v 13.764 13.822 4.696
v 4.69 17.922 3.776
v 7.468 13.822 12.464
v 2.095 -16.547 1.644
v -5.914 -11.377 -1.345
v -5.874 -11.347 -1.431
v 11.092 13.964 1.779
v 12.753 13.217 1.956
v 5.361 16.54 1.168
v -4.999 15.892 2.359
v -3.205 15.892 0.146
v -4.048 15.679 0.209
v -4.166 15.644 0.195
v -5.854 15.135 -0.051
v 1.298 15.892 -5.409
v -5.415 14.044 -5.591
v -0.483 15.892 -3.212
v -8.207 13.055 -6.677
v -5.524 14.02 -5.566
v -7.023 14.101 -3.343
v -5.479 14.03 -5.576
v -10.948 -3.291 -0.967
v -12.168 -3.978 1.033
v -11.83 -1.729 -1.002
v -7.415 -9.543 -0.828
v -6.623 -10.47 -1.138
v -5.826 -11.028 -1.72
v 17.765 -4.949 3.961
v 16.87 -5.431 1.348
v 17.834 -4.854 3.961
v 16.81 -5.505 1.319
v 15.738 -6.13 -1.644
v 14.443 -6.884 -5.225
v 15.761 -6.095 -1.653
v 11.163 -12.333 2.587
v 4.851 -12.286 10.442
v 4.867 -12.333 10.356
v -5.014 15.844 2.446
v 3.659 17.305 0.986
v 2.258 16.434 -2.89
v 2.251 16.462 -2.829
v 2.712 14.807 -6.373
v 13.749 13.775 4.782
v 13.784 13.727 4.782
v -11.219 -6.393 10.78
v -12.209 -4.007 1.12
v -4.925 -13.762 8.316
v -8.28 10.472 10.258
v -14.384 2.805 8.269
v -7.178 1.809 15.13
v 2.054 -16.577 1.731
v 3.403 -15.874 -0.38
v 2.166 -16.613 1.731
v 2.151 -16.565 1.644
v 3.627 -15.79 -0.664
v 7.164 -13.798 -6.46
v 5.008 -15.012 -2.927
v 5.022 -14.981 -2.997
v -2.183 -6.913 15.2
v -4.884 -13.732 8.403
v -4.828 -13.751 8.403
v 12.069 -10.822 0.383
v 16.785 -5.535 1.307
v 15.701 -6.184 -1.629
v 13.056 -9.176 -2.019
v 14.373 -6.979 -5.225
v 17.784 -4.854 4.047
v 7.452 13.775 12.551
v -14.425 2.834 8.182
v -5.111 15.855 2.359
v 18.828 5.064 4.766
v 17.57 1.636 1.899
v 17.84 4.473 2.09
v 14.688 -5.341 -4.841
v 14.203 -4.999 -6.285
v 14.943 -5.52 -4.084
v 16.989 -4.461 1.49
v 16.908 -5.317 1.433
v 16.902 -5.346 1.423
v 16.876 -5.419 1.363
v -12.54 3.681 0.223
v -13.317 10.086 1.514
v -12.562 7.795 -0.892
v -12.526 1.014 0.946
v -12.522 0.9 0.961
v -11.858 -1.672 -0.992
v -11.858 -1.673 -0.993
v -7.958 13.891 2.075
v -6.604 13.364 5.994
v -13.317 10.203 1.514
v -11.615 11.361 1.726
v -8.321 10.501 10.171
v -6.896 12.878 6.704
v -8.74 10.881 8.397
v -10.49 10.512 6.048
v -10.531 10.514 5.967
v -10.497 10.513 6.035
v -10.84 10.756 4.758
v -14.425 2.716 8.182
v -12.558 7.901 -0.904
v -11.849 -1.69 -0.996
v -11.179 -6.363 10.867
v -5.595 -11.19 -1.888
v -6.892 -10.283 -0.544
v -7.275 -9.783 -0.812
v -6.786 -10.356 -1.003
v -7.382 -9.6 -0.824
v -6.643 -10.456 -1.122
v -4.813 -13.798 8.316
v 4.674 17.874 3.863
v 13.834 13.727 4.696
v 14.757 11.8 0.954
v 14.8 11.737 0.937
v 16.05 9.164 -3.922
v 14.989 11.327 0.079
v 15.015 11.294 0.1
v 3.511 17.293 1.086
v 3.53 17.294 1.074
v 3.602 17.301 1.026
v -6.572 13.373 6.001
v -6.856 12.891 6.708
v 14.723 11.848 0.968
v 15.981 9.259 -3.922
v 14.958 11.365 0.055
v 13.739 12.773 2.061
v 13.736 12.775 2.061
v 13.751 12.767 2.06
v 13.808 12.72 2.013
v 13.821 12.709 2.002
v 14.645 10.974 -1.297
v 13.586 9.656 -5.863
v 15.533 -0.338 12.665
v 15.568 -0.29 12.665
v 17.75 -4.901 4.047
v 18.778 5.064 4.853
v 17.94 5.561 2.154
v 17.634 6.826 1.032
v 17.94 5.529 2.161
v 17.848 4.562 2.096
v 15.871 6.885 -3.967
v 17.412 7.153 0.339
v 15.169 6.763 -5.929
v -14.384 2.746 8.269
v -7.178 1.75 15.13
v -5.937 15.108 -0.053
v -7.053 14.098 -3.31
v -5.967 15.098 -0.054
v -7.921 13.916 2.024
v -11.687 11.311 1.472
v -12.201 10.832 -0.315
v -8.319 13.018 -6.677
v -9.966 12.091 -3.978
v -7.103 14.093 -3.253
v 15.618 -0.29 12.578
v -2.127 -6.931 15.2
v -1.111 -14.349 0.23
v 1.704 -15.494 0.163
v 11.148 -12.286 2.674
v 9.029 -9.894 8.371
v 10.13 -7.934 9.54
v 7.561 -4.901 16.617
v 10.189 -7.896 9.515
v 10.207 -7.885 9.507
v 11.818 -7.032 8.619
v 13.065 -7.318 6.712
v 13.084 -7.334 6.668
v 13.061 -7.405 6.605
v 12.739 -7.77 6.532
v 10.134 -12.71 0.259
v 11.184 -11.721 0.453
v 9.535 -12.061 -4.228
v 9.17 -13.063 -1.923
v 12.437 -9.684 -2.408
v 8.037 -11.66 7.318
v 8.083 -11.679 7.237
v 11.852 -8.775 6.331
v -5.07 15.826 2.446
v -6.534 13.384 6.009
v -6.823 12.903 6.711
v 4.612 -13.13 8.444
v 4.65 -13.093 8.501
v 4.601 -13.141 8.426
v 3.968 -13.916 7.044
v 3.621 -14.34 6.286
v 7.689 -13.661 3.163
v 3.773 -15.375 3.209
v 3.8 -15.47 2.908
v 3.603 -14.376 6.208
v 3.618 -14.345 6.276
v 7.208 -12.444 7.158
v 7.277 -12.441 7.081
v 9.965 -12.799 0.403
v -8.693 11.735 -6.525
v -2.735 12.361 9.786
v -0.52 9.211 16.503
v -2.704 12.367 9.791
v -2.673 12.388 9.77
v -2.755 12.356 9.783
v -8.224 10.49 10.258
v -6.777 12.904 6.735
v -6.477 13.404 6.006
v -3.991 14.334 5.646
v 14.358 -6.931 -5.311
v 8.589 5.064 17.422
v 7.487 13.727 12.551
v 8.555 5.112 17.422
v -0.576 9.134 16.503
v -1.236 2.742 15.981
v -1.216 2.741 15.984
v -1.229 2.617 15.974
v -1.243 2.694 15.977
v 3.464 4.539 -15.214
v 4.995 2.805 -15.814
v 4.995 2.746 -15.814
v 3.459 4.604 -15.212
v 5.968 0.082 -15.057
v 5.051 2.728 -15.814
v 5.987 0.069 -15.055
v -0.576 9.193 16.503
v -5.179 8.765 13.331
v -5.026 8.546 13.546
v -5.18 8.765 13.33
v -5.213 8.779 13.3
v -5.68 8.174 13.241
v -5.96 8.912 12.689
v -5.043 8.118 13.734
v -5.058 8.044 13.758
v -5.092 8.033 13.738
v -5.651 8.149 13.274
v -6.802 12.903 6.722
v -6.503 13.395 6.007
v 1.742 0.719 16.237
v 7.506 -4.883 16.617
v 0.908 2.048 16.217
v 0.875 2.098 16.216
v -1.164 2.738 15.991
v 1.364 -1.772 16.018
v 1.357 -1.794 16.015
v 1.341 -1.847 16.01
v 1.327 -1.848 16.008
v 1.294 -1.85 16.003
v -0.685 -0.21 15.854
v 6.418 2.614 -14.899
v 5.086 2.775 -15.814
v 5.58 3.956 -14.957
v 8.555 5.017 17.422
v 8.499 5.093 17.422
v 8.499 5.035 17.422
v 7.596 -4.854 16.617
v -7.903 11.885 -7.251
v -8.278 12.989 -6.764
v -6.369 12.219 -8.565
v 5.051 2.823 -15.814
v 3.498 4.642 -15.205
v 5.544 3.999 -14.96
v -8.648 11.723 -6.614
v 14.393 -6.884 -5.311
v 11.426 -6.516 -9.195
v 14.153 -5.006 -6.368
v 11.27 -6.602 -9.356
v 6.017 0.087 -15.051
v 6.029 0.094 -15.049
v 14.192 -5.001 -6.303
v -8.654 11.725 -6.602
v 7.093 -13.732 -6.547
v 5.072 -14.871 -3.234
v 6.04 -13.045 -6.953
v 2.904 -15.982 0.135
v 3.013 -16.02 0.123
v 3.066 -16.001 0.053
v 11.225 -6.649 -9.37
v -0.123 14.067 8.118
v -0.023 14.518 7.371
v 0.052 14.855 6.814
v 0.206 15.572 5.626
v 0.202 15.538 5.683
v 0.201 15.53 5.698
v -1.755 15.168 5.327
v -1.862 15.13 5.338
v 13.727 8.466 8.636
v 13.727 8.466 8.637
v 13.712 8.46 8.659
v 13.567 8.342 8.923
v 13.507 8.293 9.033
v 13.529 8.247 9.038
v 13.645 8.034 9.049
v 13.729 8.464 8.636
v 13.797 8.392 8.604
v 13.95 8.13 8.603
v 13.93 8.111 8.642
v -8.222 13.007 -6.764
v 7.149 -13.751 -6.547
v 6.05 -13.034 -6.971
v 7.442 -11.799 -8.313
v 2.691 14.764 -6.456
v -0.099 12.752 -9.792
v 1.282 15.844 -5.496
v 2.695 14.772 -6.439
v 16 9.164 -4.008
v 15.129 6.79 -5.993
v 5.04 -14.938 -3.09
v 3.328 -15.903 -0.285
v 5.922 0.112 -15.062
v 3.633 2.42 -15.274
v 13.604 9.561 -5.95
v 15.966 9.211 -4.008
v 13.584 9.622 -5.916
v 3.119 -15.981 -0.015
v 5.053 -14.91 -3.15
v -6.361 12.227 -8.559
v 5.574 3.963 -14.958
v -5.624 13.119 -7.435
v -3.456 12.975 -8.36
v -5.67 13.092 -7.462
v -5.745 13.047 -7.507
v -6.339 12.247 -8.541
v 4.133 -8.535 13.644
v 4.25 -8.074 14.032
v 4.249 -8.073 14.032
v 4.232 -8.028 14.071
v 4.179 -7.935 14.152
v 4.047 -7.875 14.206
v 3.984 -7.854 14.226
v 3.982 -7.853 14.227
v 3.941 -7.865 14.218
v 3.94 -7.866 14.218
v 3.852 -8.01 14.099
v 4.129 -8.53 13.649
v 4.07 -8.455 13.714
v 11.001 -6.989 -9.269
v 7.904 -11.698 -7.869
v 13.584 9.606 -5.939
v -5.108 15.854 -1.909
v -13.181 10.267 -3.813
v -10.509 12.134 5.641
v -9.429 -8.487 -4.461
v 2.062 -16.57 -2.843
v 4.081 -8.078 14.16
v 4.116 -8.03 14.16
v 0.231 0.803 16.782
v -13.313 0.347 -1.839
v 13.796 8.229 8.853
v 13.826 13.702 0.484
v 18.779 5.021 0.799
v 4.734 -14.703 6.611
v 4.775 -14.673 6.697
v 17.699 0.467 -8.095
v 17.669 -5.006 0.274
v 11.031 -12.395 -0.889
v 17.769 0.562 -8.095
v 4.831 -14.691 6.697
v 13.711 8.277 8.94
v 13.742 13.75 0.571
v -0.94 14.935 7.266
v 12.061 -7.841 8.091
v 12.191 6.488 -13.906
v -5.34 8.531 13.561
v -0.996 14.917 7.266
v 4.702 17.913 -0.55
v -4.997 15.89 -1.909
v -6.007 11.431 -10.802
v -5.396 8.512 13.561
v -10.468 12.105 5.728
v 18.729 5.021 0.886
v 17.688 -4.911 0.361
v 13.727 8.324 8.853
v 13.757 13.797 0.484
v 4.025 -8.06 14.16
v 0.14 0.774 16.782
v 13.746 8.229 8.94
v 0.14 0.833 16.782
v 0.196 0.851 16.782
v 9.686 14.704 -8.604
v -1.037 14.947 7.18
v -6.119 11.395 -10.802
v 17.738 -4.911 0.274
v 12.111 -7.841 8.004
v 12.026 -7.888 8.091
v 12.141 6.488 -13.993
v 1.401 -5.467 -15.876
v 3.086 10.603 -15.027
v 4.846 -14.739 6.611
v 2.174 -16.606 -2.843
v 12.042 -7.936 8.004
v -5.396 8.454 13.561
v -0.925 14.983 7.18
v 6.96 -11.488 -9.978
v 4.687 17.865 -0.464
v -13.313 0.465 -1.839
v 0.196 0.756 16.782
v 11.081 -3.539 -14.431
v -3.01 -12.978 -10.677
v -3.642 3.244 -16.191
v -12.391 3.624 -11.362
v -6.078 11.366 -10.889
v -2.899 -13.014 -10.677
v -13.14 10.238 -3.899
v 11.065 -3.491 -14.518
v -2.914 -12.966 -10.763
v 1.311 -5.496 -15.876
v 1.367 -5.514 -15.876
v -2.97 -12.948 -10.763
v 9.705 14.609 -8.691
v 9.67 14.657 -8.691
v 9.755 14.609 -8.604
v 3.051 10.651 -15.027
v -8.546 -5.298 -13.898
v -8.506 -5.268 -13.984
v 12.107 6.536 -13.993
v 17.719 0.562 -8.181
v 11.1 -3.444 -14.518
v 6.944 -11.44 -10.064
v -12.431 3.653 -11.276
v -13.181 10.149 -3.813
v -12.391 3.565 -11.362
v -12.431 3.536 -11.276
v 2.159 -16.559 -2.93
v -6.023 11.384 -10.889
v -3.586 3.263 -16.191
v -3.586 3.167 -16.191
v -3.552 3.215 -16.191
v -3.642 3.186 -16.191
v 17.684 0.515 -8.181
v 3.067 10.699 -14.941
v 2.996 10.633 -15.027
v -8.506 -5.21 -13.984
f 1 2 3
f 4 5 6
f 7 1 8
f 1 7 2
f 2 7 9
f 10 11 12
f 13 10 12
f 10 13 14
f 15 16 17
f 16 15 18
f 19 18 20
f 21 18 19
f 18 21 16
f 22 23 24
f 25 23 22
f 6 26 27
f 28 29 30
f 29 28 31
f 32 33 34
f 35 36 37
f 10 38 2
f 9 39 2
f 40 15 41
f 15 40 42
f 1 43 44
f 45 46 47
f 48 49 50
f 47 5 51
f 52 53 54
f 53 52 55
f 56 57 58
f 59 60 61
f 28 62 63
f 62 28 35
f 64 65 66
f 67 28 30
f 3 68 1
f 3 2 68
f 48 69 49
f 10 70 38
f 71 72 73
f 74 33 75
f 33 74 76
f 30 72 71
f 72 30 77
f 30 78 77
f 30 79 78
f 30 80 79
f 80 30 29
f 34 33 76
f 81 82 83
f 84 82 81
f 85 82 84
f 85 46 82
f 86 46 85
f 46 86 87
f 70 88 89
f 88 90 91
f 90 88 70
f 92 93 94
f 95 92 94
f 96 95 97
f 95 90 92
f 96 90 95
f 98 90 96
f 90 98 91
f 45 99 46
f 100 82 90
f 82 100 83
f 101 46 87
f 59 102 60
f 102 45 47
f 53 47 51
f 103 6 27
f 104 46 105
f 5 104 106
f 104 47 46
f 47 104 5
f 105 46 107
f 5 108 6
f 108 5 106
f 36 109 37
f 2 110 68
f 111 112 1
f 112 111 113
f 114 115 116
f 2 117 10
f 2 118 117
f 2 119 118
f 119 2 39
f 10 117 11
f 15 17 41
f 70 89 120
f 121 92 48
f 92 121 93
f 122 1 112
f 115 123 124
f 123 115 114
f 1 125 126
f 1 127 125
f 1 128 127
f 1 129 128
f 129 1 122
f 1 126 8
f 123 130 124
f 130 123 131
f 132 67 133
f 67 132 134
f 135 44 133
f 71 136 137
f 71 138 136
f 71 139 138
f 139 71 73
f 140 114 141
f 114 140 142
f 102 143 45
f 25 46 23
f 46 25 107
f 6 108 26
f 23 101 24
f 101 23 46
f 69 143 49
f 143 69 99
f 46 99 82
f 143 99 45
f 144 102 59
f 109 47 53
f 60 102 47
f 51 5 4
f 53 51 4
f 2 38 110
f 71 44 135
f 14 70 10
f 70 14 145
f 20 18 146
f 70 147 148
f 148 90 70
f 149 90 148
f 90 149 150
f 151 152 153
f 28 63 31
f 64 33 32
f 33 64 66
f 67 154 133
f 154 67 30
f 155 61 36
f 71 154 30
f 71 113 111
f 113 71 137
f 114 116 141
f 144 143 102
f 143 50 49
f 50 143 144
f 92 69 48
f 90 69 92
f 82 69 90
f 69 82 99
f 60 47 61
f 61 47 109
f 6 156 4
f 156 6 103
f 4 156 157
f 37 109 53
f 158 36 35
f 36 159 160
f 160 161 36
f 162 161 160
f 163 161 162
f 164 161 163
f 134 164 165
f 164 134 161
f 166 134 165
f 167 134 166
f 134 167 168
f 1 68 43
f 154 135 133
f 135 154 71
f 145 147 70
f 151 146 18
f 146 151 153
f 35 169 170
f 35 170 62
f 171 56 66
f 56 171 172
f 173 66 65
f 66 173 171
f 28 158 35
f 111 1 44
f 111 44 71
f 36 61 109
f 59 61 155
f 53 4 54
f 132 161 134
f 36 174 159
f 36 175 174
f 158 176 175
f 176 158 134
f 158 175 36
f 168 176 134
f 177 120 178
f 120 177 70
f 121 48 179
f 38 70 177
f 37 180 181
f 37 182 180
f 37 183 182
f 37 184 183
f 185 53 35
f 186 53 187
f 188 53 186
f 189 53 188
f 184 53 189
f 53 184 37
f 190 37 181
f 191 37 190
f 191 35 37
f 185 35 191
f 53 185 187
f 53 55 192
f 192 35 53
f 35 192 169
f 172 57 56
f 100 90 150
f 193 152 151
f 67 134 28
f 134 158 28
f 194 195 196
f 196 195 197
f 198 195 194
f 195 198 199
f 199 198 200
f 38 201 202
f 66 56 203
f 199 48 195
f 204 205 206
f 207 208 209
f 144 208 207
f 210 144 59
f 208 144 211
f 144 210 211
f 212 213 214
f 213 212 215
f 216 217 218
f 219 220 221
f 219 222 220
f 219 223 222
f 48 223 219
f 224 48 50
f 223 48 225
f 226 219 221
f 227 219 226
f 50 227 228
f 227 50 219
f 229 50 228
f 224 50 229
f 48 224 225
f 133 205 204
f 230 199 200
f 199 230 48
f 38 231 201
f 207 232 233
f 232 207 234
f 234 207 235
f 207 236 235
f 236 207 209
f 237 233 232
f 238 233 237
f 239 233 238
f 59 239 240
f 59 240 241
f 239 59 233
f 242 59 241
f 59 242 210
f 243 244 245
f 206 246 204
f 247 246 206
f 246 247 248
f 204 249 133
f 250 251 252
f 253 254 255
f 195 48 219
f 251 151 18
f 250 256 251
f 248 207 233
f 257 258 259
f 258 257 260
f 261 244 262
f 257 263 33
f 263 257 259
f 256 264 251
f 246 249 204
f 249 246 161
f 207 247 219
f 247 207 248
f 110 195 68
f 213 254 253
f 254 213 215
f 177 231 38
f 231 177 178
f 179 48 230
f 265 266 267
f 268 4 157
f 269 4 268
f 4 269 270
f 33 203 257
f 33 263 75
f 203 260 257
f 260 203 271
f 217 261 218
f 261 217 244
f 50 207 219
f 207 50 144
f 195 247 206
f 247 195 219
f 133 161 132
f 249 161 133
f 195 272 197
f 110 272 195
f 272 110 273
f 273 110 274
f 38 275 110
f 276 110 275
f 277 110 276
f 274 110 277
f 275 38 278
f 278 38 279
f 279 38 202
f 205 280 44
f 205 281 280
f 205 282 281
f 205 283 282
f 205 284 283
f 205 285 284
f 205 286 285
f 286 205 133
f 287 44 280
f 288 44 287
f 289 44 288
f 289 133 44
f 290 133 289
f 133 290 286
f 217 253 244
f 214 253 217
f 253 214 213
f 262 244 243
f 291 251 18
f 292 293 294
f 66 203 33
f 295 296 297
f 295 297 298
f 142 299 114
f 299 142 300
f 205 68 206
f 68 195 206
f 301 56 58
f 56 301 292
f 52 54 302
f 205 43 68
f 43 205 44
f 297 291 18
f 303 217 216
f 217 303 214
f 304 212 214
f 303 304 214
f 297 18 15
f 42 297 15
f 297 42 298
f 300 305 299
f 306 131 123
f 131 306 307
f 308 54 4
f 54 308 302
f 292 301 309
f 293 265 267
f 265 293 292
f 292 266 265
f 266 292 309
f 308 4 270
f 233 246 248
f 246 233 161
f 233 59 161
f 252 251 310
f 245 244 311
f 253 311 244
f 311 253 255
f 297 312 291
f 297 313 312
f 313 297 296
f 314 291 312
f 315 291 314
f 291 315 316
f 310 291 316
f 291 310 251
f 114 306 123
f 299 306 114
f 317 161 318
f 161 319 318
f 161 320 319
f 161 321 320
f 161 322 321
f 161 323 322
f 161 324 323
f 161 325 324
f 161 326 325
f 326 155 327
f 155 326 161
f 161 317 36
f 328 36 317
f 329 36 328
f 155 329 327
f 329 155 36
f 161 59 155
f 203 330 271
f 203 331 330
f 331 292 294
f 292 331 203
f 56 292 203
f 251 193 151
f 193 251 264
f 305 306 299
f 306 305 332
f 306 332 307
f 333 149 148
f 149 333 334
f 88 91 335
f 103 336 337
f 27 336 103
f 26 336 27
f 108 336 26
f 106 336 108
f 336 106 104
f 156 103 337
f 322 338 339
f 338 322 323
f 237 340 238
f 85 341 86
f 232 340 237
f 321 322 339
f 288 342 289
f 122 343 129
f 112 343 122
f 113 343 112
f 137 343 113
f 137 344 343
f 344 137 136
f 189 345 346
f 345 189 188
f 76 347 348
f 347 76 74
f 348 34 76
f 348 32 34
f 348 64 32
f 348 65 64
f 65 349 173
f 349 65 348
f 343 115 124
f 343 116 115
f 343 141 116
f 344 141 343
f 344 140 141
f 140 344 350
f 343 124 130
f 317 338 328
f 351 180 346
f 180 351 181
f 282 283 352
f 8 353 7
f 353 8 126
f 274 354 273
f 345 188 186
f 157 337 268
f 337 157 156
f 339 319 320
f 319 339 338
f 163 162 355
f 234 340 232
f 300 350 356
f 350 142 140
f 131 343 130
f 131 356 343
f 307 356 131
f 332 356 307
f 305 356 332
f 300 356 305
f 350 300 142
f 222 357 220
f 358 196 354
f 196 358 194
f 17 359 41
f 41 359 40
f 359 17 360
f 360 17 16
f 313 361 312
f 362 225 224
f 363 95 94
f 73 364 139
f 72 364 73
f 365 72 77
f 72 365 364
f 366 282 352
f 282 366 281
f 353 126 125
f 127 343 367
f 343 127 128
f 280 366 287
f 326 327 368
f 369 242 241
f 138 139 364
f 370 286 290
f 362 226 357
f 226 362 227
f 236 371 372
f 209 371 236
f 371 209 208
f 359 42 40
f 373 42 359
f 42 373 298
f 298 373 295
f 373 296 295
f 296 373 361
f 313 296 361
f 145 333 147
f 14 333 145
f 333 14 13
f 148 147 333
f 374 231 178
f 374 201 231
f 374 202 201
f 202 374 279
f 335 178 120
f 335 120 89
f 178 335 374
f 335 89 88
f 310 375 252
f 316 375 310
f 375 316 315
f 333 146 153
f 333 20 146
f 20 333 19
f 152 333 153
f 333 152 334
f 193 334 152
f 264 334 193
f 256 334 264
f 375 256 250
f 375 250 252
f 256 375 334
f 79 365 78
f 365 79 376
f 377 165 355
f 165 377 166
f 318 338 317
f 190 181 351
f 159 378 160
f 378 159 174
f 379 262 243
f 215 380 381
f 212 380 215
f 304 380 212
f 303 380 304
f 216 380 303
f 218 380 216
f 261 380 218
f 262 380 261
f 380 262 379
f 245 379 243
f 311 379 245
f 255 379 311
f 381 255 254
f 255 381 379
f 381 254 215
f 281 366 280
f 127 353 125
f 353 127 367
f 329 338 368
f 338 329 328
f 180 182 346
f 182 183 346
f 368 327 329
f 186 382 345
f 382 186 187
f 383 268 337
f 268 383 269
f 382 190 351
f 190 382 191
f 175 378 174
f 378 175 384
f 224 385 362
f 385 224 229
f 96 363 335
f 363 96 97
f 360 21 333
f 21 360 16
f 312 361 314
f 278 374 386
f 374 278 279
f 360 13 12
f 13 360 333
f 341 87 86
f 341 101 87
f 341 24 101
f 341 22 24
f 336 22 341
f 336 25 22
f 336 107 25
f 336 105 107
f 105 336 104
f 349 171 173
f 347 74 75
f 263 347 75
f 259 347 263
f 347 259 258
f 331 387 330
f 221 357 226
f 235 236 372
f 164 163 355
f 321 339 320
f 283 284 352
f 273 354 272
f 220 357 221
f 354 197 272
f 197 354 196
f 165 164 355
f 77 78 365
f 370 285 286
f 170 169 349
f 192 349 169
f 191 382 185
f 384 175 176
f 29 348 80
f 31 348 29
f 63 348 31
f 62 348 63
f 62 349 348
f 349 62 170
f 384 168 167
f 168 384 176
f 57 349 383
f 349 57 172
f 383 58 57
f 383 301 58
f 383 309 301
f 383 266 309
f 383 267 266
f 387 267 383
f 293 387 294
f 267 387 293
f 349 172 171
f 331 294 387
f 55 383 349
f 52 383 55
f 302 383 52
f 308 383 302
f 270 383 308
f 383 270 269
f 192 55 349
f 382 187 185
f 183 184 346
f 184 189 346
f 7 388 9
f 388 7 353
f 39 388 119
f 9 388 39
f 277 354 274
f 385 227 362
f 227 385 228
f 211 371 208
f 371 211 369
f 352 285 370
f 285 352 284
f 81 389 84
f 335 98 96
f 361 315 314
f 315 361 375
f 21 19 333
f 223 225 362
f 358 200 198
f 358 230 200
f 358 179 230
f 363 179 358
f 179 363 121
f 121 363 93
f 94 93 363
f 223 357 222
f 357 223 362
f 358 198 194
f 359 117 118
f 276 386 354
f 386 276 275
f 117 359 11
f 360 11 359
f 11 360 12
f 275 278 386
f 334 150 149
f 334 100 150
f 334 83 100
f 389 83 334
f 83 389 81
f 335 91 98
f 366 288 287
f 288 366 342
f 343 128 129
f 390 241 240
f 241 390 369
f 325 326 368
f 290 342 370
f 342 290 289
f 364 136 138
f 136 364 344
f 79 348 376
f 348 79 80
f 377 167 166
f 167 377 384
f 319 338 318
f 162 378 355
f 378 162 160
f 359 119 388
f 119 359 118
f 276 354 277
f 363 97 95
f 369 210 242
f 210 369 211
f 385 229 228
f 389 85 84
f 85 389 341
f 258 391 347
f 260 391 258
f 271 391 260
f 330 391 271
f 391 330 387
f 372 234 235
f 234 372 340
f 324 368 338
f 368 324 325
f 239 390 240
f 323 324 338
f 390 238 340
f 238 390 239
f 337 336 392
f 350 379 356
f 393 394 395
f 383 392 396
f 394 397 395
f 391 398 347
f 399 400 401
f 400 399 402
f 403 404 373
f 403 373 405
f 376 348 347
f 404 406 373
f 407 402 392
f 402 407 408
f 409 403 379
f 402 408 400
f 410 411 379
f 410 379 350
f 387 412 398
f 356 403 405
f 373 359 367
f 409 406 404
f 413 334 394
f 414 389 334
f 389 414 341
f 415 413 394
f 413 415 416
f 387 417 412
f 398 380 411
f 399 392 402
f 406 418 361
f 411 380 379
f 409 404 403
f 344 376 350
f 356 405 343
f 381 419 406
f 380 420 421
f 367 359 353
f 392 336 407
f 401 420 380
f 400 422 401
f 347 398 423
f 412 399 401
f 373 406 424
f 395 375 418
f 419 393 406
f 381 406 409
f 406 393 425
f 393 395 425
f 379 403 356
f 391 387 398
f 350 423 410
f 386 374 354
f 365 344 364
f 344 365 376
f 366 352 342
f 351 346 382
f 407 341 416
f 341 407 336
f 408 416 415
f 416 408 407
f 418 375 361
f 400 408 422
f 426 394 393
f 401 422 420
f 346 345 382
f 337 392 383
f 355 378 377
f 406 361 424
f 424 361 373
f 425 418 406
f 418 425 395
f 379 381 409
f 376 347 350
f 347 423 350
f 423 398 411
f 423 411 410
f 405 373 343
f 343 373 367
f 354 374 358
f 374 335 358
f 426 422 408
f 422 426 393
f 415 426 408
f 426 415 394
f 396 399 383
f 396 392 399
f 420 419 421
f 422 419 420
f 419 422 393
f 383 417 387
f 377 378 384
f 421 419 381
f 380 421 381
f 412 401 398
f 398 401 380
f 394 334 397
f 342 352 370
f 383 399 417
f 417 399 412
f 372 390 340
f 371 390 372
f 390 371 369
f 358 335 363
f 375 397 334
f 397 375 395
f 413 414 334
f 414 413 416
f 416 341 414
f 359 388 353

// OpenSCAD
// Auto-generated OpenSCAD file

    inner_points = 10*[[1.1000305201583598, -1.229950875030529, -0.08894189251692455], [-0.5027426604470553, 1.579473909815398, -0.1908558995277139], [-0.846549708488417, -0.523909617402483, -1.3897599911510223], [0.01808376162039204, 0.08034171518490725, 1.6695577831956607], [0.1351283573464456, -0.5466570677439849, -1.5789443683117281], [0.9574436533003191, 0.028020099593282485, 1.3306397363982712], [-0.3601557935890146, 0.3215029351915868, -1.6104375284429095], [0.46215950236485903, 0.8961801025288543, 1.2991465762670897], [0.21433774726042953, -1.6511067907648083, -0.284328705476233], [0.4815241834294346, -1.4643828601215962, 0.6610524779902326], [-1.30999013029746, 1.0208149579040204, -0.3812546859455942], [-1.0428036941284546, 1.2075388885472327, 0.5641264975208714], [0.6928698992905247, -1.139259691273304, -0.9977847491226374], [1.2010887016589473, -0.7840896693003617, 0.8004371207145751], [-0.603800841947643, 1.133612704085231, -1.0802349127592135], [-0.09558203957922018, 1.4887827260581734, 0.7179869570779989], [-0.2929413398808356, -1.2918779775559366, -1.0676693641360977], [0.40656183134257406, -0.8030283806190294, 1.4073707065037098], [-1.2350277782105992, 0.35946047840145373, -1.1275729144590714], [-0.5355246069871895, 0.8483100753383608, 1.347467156180736], [1.766851594949058, 0.056206898787851886, -0.8094846211676406], [0.9654650046463505, 1.4609192912108153, -0.8604416246730354], [1.867909776449646, 0.502068104518019, 0.07989439206385895], [1.3726256255141858, 1.3702281074535907, 0.04840123193267751], [1.209110053004979, 0.6488095223171712, -1.3906442403567312], [1.7637877113705789, -0.4911118899577973, 0.027433986645217595], [0.46711697013241127, 1.781760505400738, -0.05501617699135854], [1.104987987925912, -0.3443704721586452, -1.443104645775373], [0.3036013976232044, 1.0603419202643185, -1.4940616492807675], [1.3695617419357062, 0.8229093187079415, 0.8853198397455359], [-0.9347794463333561, -0.8427966545821481, -0.44608283720557035], [-0.5024627112789515, -0.5406709882884531, 1.0835760499677713], [-1.3232575160555382, 0.04057344122178862, -0.18389576051361925], [-1.056071079886533, 0.2272973718650007, 0.7614854229528463], [-0.42750035919209084, -1.2020254677910198, 0.33725782145429417]];

    outer_points = 10*[[-0.7137129435947347, 0.17792343145379144, 1.5043015733227778], [1.3239769119334912, 0.17792343145379144, -1.0096506950540378], [0.21352822928092163, -1.651791935642422, 0.17307580265061], [-0.8237921976196783, 1.2959450727348392, -0.66772668091935], [0.4835667626024947, -1.2238088136169964, 1.035577766580492], [-0.5029835888873913, 1.5796556765245793, 0.23592708566413276], [1.113247557226148, -1.2238088136169964, 0.25872379260460726], [0.12669720573626192, 1.5796556765245793, -0.540926888311752], [-1.1138362715514227, -0.6333738467220617, 1.0780410322808966], [-1.4343859120759834, 0.2775269838144787, 0.8182187759451166], [0.8241219437372267, -0.6333738467220617, -1.3128696542138567], [0.503572303212666, 0.2775269838144787, -1.5726919105496369], [-0.21427005260755239, -0.6883947391266527, 1.5113461431831696], [-0.8239917014414573, 1.0442416020342355, 1.0171348432498628], [1.4342556697802138, -0.6883947391266527, -0.522483964981123], [0.824534020946309, 1.0442416020342355, -1.0166952649144299], [-0.48438908009468373, -1.370308098816377, 0.8316183440855609], [-1.3235989340695444, 1.0144612359087941, 0.1513948459648008], [0.7133349657307877, -1.370308098816377, -0.6460457242335407], [-0.125874888244073, 1.0144612359087941, -1.3262692223543007], [0.853949656636206, 0.5064090455601755, 1.7335725089256413], [1.872794584400319, 0.5064090455601755, 0.4765963747372335], [0.7436708987894836, 1.3727272161406197, 1.2464057788527265], [1.3733516934131367, 1.3727272161406197, 0.46955180487684184], [1.551786471846253, -0.029005028930168097, 1.2578041323229636], [-0.05351685582956189, 0.9163527802772624, 1.6416450205479904], [1.5950088665582043, 0.9163527802772624, -0.3921850876163021], [0.7545987172272076, -0.48537946479352545, 1.6530433740182278], [1.7734436449913207, -0.48537946479352545, 0.39606723982981995], [0.4658851809473687, 1.7826709508577065, 0.37762431649919076], [-0.5833500199011764, -1.1317876660773551, -0.1344638136829207], [-1.1020102333514763, 0.3420808381112755, -0.5548650554679007], [-0.08354328345131035, -0.85030382925131, -0.9535853405670716], [-0.40409292397587104, 0.06059700128523038, -1.2134075969028517], [-1.2127972113579153, -0.3948534139830398, 0.11195887451241493]];

    // Convex hull for inner set (I)
    module inner_hull() {
        hull() {
            for (p = inner_points) {
                translate(p) sphere(r=0.1);
            }
        }
    }

    // Convex hull for outer set (O) minus inner hull (O \ I)
    module outer_minus_inner() {
        difference() {
            hull() {
                for (p = outer_points) {
                    translate(p) sphere(r=0.1);
                }
            }
            inner_hull(); // Subtract inner hull
        }
    }

    // Convex hull for outer set (O) minus all translated inner hulls
    module outer_minus_AllTranslationInner() {
        difference() {
            hull() {
                for (p = outer_points) {
                    translate(p) sphere(r=0.1);
                }
            }
            hull() {
                translate([0,0,50]) inner_hull();
                translate([0,0,-50]) inner_hull();
            }; // Subtract translated inner hulls
        }
    }

    // Difference between outer_minus_inner and outer_minus_AllTranslationInner
    module outer_minus_inner_diff() {
        difference() {
            // Outer minus inner
            difference() {
                hull() {
                    for (p = outer_points) {
                        translate(p) sphere(r=0.1);
                    }
                }
                inner_hull();
            }

            // Subtract Outer minus AllTranslationInner
            difference() {
                hull() {
                    for (p = outer_points) {
                        translate(p) sphere(r=0.1);
                    }
                }
                hull() {
                    translate([0,0,50]) inner_hull();
                    translate([0,0,-50]) inner_hull();
                };
            }
        }
    }

    // Rendering all with colors applied
    color([1, 0, 0, 0.5]) inner_hull(); // Transparent red
    color([0, 1, 0, 1]) outer_minus_AllTranslationInner(); // Opaque green
    color([1, 1, 0, 1]) outer_minus_inner_diff(); // Opaque yellow
    
